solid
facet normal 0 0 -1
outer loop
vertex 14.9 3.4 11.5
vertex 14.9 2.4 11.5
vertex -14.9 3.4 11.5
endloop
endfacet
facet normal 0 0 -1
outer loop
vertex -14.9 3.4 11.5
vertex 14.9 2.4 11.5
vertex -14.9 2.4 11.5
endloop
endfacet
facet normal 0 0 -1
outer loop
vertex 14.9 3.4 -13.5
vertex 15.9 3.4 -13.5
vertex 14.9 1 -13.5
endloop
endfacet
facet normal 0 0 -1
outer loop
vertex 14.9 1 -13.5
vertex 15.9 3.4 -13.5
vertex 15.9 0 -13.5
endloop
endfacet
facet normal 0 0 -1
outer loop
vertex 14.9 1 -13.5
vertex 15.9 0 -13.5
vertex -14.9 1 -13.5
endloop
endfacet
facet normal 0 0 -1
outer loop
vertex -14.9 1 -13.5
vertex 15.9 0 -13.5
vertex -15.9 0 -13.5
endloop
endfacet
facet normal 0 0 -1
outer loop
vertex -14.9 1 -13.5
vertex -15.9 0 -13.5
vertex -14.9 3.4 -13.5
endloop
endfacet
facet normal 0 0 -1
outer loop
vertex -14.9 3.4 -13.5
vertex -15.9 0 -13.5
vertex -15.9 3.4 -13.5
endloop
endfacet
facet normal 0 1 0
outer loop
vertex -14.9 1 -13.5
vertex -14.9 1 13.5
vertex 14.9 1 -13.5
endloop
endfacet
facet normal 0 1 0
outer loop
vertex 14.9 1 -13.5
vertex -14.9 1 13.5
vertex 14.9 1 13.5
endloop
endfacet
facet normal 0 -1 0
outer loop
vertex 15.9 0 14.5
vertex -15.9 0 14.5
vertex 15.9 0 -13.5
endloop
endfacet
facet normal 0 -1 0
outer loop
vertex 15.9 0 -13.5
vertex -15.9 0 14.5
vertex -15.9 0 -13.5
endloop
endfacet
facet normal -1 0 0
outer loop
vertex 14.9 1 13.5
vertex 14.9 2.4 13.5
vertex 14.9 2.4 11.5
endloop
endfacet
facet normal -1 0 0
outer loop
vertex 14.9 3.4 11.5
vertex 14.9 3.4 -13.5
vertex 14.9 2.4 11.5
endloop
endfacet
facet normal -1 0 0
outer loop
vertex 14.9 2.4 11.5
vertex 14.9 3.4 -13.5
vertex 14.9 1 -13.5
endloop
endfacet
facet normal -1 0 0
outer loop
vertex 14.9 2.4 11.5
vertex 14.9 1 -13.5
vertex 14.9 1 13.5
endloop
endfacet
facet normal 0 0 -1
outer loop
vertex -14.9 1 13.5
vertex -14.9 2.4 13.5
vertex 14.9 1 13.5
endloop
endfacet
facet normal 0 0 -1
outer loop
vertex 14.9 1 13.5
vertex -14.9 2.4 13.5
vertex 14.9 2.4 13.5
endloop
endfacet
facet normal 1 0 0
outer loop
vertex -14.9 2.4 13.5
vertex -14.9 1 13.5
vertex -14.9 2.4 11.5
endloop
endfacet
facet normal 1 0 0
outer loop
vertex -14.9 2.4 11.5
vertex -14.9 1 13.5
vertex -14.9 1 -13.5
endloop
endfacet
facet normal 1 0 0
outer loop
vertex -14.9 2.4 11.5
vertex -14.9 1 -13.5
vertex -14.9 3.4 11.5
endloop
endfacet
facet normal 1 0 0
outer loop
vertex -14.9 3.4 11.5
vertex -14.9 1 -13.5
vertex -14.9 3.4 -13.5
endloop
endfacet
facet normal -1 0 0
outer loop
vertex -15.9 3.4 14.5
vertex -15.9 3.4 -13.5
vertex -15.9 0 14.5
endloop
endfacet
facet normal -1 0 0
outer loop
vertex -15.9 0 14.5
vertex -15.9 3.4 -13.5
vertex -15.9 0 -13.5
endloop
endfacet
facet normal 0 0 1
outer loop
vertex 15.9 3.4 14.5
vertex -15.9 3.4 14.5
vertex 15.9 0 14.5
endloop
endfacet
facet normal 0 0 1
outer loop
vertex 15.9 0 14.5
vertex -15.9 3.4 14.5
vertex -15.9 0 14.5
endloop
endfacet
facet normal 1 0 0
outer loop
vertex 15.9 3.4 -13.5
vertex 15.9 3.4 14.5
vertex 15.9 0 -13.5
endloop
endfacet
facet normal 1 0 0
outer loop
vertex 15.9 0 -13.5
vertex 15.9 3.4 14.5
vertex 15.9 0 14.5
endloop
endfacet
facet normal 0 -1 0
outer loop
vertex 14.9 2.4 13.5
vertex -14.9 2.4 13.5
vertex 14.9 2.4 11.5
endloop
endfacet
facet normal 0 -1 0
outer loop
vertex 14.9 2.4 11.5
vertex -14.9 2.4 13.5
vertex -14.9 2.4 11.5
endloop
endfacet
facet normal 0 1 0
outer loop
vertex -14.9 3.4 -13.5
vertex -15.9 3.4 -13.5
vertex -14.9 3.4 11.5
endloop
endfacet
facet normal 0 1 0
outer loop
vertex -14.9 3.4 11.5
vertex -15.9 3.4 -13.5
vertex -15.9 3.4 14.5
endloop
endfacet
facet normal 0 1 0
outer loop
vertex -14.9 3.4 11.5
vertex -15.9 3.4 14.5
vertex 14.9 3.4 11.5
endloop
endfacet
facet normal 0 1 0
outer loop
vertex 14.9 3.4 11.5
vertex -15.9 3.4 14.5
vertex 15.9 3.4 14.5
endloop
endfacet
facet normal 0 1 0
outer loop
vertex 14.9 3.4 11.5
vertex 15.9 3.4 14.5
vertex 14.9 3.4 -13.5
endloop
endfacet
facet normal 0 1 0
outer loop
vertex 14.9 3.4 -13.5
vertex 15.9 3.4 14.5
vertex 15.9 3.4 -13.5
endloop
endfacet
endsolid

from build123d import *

# Parameters (mm, degrees)
SKETCH1_W           = 29.8
SKETCH1_H           = 27
BOSS_EXTRUDE1_DEPTH = 1
BOSS_EXTRUDE2_DEPTH = 2.4
SKETCH3_W           = 31.8
SKETCH3_H           = 3
BOSS_EXTRUDE3_DEPTH = 1
SKETCH5_W           = 1
SKETCH5_H           = 25
BOSS_EXTRUDE4_DEPTH = 1
SKETCH6_W           = 1
SKETCH6_H           = 25
BOSS_EXTRUDE5_DEPTH = 1


with BuildPart() as part:
    # Sketch1 → Boss-Extrude1 (new body)
    with BuildSketch(Plane(origin=(0, 0, 0), x_dir=(1, 0, 0), z_dir=(0, 1, 0))):
        Rectangle(SKETCH1_W, SKETCH1_H)
    extrude(amount=BOSS_EXTRUDE1_DEPTH)

    # Sketch2 → Boss-Extrude2 (add)
    with BuildSketch(Plane.XZ):
        Polygon((15.9, -13.5), (15.9, 14.5), (-15.9, 14.5), (-15.9, -13.5), (-14.9, -13.5), (-14.9, 13.5), (14.9, 13.5), (14.9, -13.5), align=None)
    extrude(amount=-BOSS_EXTRUDE2_DEPTH)

    # Sketch3 → Boss-Extrude3 (add)
    with BuildSketch(Plane(origin=(0, 2.4, 0), x_dir=(1, 0, 0), z_dir=(0, 1, 0))):
        with Locations((0, -13)):
            Rectangle(SKETCH3_W, SKETCH3_H)
    extrude(amount=BOSS_EXTRUDE3_DEPTH)

    # Sketch5 → Boss-Extrude4 (add)
    with BuildSketch(Plane(origin=(0, 2.4, 0), x_dir=(1, 0, 0), z_dir=(0, 1, 0))):
        with Locations((15.4, 1)):
            Rectangle(SKETCH5_W, SKETCH5_H)
    extrude(amount=BOSS_EXTRUDE4_DEPTH)

    # Sketch6 → Boss-Extrude5 (add)
    with BuildSketch(Plane(origin=(0, 2.4, 0), x_dir=(1, 0, 0), z_dir=(0, 1, 0))):
        with Locations((-15.4, 1)):
            Rectangle(SKETCH6_W, SKETCH6_H)
    extrude(amount=BOSS_EXTRUDE5_DEPTH)


solid = part.part
